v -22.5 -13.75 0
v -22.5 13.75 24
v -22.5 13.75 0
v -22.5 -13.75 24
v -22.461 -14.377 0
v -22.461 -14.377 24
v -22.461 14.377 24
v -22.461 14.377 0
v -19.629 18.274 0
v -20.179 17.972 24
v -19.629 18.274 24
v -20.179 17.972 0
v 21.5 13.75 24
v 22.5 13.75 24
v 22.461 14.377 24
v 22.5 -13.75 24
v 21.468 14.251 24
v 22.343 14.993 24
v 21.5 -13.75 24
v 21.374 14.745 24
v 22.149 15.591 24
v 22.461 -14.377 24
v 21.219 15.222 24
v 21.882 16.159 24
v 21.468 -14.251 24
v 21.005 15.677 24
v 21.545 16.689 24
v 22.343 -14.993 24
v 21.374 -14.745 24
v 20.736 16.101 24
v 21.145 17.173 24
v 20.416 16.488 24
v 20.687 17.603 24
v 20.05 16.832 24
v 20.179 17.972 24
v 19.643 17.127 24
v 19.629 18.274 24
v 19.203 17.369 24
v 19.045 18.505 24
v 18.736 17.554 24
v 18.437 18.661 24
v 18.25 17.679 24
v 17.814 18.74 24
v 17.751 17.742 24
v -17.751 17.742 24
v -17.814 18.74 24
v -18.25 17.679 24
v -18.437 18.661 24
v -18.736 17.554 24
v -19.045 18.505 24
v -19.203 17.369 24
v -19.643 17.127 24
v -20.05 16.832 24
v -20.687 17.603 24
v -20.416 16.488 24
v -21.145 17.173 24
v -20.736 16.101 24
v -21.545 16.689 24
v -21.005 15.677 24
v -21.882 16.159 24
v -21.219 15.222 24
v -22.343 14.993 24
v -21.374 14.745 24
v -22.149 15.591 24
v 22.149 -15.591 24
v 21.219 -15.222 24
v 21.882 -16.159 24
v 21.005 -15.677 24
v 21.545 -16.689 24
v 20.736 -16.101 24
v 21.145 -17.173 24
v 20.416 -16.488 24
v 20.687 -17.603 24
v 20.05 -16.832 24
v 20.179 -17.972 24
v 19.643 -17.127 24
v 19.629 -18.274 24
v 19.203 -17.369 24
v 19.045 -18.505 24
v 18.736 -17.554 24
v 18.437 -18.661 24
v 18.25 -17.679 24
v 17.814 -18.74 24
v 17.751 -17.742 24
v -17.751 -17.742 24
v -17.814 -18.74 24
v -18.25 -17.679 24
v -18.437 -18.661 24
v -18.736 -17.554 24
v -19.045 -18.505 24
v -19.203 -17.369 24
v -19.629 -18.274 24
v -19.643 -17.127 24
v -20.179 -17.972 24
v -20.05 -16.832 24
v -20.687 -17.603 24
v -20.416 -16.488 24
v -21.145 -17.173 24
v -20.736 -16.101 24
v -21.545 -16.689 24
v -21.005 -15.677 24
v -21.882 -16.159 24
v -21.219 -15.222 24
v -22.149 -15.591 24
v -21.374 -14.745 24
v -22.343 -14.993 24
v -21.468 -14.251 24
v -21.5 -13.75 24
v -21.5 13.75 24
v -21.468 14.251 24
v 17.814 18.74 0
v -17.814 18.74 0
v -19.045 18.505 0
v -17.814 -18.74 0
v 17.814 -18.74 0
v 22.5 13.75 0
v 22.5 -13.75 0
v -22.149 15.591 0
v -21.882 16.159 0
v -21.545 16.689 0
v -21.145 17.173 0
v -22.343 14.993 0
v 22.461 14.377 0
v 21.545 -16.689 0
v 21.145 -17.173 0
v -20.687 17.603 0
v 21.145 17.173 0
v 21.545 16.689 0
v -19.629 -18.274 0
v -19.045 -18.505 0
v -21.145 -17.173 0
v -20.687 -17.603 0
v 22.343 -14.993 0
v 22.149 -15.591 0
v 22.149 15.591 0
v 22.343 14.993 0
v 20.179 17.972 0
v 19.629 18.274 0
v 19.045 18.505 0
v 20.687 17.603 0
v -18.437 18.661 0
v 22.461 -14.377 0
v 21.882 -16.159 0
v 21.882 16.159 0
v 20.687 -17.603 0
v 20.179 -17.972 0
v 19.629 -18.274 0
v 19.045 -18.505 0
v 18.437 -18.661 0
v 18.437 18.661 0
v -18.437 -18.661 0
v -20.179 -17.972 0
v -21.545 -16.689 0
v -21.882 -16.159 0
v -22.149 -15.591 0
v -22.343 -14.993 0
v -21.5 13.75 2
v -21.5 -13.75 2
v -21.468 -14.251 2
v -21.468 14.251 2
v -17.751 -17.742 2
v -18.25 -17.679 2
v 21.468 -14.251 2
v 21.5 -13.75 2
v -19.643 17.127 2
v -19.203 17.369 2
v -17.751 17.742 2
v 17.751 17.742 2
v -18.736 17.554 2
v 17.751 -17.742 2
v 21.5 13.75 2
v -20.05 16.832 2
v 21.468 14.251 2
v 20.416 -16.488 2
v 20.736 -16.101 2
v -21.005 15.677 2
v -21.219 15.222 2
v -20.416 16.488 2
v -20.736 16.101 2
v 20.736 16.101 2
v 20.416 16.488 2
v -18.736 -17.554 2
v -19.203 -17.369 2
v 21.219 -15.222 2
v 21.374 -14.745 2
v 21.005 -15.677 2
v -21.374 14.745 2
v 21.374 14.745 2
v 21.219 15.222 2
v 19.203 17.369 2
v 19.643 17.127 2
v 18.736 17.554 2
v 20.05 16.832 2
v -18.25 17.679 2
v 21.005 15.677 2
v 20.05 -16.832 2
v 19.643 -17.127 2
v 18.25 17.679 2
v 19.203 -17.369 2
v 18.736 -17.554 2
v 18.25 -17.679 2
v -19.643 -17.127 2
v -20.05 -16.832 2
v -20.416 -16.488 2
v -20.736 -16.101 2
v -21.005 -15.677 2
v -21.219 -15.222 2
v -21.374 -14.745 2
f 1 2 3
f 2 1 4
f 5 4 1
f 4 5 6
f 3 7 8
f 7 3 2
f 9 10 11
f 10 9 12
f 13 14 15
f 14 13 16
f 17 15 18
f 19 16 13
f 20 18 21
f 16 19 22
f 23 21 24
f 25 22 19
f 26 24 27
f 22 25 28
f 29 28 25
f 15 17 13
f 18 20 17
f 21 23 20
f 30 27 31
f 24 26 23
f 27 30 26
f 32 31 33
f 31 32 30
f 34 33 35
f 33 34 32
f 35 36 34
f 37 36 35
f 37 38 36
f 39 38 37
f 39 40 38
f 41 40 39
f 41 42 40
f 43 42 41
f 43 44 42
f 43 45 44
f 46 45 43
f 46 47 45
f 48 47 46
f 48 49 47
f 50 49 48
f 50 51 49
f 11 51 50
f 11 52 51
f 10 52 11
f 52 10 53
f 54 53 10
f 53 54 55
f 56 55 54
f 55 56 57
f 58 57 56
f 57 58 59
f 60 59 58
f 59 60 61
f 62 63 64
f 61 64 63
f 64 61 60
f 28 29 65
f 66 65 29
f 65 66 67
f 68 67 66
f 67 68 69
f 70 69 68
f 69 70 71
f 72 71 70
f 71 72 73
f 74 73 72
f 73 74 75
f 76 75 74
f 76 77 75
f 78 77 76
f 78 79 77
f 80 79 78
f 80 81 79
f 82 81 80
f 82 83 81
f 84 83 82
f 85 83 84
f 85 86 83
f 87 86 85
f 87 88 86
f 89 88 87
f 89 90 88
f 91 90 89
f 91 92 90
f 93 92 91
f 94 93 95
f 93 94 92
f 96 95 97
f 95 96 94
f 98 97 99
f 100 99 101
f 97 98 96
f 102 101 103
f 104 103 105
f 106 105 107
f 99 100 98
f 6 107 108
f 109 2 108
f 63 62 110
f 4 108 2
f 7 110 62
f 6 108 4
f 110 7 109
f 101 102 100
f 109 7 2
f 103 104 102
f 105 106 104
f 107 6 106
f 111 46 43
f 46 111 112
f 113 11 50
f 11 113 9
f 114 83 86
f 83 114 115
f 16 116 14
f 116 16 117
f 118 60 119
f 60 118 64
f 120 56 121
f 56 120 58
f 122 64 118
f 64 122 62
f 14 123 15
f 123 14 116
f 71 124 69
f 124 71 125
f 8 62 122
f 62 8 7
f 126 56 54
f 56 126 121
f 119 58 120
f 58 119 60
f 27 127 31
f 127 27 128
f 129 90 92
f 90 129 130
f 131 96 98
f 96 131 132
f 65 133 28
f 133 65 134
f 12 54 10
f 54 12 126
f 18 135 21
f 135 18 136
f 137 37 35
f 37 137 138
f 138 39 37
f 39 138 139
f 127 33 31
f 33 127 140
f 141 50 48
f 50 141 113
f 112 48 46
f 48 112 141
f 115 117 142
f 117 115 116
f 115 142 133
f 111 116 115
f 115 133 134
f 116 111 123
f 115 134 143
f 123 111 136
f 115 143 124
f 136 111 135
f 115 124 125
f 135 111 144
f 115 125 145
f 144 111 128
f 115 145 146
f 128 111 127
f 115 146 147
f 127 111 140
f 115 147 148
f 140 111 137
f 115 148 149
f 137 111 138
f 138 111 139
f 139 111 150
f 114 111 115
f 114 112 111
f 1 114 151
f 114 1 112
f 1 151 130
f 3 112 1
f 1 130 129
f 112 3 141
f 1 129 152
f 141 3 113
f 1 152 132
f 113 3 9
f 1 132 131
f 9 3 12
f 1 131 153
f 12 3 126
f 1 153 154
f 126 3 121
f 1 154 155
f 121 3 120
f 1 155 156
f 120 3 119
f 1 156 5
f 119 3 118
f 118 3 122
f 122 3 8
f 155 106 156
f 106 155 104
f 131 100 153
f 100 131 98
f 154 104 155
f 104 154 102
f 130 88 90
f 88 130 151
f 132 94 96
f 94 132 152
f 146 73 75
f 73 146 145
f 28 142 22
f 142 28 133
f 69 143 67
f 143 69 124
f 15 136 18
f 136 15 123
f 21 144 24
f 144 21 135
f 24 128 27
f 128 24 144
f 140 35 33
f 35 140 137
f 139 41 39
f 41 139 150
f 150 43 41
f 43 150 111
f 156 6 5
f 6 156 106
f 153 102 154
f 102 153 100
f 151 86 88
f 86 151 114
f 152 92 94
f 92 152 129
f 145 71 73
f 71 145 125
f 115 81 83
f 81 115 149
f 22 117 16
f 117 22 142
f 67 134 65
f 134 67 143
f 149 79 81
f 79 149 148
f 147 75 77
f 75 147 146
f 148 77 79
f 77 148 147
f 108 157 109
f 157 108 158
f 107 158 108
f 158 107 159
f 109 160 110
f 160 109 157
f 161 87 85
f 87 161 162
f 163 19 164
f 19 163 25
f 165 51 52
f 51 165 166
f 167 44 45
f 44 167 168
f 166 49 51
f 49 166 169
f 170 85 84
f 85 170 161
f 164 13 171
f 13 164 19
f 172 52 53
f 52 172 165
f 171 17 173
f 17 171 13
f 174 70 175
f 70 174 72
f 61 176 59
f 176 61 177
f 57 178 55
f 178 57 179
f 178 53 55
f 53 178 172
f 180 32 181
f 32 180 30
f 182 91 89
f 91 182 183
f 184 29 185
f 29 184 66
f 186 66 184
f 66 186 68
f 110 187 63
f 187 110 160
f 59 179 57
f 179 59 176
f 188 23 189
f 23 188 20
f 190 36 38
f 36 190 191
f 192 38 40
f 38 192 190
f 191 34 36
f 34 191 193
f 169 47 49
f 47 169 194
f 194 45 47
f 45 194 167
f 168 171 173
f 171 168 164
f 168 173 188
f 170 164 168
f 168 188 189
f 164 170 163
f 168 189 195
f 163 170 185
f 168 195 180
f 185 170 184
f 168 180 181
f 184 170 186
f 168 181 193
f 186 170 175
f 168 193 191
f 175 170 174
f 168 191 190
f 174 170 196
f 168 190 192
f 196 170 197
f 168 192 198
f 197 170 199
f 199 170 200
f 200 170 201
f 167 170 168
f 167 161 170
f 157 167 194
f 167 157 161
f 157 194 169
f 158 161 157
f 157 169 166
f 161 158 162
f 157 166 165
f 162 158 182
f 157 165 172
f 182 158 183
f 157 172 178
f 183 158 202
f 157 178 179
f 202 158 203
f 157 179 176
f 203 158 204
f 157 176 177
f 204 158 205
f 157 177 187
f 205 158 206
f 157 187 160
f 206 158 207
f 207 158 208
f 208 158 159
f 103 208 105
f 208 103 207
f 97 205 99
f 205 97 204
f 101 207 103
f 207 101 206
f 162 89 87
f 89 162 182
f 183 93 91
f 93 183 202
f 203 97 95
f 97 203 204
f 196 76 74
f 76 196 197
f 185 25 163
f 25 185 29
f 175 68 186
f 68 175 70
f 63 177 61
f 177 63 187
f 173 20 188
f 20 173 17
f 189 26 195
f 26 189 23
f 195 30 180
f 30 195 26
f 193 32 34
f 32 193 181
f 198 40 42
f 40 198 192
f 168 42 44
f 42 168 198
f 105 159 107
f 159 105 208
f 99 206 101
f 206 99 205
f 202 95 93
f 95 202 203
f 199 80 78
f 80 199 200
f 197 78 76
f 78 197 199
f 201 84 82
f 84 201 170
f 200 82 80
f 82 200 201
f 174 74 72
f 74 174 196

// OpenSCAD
$fn = 50;


difference() {
	union() {
		hull() {
			translate(v = [-17.5000000000, 13.7500000000, 0]) {
				cylinder(h = 24, r = 5);
			}
			translate(v = [17.5000000000, 13.7500000000, 0]) {
				cylinder(h = 24, r = 5);
			}
			translate(v = [-17.5000000000, -13.7500000000, 0]) {
				cylinder(h = 24, r = 5);
			}
			translate(v = [17.5000000000, -13.7500000000, 0]) {
				cylinder(h = 24, r = 5);
			}
		}
	}
	union() {
		translate(v = [0, 0, 2]) {
			hull() {
				translate(v = [-17.5000000000, 13.7500000000, 0]) {
					cylinder(h = 22, r = 4);
				}
				translate(v = [17.5000000000, 13.7500000000, 0]) {
					cylinder(h = 22, r = 4);
				}
				translate(v = [-17.5000000000, -13.7500000000, 0]) {
					cylinder(h = 22, r = 4);
				}
				translate(v = [17.5000000000, -13.7500000000, 0]) {
					cylinder(h = 22, r = 4);
				}
			}
		}
	}
}
